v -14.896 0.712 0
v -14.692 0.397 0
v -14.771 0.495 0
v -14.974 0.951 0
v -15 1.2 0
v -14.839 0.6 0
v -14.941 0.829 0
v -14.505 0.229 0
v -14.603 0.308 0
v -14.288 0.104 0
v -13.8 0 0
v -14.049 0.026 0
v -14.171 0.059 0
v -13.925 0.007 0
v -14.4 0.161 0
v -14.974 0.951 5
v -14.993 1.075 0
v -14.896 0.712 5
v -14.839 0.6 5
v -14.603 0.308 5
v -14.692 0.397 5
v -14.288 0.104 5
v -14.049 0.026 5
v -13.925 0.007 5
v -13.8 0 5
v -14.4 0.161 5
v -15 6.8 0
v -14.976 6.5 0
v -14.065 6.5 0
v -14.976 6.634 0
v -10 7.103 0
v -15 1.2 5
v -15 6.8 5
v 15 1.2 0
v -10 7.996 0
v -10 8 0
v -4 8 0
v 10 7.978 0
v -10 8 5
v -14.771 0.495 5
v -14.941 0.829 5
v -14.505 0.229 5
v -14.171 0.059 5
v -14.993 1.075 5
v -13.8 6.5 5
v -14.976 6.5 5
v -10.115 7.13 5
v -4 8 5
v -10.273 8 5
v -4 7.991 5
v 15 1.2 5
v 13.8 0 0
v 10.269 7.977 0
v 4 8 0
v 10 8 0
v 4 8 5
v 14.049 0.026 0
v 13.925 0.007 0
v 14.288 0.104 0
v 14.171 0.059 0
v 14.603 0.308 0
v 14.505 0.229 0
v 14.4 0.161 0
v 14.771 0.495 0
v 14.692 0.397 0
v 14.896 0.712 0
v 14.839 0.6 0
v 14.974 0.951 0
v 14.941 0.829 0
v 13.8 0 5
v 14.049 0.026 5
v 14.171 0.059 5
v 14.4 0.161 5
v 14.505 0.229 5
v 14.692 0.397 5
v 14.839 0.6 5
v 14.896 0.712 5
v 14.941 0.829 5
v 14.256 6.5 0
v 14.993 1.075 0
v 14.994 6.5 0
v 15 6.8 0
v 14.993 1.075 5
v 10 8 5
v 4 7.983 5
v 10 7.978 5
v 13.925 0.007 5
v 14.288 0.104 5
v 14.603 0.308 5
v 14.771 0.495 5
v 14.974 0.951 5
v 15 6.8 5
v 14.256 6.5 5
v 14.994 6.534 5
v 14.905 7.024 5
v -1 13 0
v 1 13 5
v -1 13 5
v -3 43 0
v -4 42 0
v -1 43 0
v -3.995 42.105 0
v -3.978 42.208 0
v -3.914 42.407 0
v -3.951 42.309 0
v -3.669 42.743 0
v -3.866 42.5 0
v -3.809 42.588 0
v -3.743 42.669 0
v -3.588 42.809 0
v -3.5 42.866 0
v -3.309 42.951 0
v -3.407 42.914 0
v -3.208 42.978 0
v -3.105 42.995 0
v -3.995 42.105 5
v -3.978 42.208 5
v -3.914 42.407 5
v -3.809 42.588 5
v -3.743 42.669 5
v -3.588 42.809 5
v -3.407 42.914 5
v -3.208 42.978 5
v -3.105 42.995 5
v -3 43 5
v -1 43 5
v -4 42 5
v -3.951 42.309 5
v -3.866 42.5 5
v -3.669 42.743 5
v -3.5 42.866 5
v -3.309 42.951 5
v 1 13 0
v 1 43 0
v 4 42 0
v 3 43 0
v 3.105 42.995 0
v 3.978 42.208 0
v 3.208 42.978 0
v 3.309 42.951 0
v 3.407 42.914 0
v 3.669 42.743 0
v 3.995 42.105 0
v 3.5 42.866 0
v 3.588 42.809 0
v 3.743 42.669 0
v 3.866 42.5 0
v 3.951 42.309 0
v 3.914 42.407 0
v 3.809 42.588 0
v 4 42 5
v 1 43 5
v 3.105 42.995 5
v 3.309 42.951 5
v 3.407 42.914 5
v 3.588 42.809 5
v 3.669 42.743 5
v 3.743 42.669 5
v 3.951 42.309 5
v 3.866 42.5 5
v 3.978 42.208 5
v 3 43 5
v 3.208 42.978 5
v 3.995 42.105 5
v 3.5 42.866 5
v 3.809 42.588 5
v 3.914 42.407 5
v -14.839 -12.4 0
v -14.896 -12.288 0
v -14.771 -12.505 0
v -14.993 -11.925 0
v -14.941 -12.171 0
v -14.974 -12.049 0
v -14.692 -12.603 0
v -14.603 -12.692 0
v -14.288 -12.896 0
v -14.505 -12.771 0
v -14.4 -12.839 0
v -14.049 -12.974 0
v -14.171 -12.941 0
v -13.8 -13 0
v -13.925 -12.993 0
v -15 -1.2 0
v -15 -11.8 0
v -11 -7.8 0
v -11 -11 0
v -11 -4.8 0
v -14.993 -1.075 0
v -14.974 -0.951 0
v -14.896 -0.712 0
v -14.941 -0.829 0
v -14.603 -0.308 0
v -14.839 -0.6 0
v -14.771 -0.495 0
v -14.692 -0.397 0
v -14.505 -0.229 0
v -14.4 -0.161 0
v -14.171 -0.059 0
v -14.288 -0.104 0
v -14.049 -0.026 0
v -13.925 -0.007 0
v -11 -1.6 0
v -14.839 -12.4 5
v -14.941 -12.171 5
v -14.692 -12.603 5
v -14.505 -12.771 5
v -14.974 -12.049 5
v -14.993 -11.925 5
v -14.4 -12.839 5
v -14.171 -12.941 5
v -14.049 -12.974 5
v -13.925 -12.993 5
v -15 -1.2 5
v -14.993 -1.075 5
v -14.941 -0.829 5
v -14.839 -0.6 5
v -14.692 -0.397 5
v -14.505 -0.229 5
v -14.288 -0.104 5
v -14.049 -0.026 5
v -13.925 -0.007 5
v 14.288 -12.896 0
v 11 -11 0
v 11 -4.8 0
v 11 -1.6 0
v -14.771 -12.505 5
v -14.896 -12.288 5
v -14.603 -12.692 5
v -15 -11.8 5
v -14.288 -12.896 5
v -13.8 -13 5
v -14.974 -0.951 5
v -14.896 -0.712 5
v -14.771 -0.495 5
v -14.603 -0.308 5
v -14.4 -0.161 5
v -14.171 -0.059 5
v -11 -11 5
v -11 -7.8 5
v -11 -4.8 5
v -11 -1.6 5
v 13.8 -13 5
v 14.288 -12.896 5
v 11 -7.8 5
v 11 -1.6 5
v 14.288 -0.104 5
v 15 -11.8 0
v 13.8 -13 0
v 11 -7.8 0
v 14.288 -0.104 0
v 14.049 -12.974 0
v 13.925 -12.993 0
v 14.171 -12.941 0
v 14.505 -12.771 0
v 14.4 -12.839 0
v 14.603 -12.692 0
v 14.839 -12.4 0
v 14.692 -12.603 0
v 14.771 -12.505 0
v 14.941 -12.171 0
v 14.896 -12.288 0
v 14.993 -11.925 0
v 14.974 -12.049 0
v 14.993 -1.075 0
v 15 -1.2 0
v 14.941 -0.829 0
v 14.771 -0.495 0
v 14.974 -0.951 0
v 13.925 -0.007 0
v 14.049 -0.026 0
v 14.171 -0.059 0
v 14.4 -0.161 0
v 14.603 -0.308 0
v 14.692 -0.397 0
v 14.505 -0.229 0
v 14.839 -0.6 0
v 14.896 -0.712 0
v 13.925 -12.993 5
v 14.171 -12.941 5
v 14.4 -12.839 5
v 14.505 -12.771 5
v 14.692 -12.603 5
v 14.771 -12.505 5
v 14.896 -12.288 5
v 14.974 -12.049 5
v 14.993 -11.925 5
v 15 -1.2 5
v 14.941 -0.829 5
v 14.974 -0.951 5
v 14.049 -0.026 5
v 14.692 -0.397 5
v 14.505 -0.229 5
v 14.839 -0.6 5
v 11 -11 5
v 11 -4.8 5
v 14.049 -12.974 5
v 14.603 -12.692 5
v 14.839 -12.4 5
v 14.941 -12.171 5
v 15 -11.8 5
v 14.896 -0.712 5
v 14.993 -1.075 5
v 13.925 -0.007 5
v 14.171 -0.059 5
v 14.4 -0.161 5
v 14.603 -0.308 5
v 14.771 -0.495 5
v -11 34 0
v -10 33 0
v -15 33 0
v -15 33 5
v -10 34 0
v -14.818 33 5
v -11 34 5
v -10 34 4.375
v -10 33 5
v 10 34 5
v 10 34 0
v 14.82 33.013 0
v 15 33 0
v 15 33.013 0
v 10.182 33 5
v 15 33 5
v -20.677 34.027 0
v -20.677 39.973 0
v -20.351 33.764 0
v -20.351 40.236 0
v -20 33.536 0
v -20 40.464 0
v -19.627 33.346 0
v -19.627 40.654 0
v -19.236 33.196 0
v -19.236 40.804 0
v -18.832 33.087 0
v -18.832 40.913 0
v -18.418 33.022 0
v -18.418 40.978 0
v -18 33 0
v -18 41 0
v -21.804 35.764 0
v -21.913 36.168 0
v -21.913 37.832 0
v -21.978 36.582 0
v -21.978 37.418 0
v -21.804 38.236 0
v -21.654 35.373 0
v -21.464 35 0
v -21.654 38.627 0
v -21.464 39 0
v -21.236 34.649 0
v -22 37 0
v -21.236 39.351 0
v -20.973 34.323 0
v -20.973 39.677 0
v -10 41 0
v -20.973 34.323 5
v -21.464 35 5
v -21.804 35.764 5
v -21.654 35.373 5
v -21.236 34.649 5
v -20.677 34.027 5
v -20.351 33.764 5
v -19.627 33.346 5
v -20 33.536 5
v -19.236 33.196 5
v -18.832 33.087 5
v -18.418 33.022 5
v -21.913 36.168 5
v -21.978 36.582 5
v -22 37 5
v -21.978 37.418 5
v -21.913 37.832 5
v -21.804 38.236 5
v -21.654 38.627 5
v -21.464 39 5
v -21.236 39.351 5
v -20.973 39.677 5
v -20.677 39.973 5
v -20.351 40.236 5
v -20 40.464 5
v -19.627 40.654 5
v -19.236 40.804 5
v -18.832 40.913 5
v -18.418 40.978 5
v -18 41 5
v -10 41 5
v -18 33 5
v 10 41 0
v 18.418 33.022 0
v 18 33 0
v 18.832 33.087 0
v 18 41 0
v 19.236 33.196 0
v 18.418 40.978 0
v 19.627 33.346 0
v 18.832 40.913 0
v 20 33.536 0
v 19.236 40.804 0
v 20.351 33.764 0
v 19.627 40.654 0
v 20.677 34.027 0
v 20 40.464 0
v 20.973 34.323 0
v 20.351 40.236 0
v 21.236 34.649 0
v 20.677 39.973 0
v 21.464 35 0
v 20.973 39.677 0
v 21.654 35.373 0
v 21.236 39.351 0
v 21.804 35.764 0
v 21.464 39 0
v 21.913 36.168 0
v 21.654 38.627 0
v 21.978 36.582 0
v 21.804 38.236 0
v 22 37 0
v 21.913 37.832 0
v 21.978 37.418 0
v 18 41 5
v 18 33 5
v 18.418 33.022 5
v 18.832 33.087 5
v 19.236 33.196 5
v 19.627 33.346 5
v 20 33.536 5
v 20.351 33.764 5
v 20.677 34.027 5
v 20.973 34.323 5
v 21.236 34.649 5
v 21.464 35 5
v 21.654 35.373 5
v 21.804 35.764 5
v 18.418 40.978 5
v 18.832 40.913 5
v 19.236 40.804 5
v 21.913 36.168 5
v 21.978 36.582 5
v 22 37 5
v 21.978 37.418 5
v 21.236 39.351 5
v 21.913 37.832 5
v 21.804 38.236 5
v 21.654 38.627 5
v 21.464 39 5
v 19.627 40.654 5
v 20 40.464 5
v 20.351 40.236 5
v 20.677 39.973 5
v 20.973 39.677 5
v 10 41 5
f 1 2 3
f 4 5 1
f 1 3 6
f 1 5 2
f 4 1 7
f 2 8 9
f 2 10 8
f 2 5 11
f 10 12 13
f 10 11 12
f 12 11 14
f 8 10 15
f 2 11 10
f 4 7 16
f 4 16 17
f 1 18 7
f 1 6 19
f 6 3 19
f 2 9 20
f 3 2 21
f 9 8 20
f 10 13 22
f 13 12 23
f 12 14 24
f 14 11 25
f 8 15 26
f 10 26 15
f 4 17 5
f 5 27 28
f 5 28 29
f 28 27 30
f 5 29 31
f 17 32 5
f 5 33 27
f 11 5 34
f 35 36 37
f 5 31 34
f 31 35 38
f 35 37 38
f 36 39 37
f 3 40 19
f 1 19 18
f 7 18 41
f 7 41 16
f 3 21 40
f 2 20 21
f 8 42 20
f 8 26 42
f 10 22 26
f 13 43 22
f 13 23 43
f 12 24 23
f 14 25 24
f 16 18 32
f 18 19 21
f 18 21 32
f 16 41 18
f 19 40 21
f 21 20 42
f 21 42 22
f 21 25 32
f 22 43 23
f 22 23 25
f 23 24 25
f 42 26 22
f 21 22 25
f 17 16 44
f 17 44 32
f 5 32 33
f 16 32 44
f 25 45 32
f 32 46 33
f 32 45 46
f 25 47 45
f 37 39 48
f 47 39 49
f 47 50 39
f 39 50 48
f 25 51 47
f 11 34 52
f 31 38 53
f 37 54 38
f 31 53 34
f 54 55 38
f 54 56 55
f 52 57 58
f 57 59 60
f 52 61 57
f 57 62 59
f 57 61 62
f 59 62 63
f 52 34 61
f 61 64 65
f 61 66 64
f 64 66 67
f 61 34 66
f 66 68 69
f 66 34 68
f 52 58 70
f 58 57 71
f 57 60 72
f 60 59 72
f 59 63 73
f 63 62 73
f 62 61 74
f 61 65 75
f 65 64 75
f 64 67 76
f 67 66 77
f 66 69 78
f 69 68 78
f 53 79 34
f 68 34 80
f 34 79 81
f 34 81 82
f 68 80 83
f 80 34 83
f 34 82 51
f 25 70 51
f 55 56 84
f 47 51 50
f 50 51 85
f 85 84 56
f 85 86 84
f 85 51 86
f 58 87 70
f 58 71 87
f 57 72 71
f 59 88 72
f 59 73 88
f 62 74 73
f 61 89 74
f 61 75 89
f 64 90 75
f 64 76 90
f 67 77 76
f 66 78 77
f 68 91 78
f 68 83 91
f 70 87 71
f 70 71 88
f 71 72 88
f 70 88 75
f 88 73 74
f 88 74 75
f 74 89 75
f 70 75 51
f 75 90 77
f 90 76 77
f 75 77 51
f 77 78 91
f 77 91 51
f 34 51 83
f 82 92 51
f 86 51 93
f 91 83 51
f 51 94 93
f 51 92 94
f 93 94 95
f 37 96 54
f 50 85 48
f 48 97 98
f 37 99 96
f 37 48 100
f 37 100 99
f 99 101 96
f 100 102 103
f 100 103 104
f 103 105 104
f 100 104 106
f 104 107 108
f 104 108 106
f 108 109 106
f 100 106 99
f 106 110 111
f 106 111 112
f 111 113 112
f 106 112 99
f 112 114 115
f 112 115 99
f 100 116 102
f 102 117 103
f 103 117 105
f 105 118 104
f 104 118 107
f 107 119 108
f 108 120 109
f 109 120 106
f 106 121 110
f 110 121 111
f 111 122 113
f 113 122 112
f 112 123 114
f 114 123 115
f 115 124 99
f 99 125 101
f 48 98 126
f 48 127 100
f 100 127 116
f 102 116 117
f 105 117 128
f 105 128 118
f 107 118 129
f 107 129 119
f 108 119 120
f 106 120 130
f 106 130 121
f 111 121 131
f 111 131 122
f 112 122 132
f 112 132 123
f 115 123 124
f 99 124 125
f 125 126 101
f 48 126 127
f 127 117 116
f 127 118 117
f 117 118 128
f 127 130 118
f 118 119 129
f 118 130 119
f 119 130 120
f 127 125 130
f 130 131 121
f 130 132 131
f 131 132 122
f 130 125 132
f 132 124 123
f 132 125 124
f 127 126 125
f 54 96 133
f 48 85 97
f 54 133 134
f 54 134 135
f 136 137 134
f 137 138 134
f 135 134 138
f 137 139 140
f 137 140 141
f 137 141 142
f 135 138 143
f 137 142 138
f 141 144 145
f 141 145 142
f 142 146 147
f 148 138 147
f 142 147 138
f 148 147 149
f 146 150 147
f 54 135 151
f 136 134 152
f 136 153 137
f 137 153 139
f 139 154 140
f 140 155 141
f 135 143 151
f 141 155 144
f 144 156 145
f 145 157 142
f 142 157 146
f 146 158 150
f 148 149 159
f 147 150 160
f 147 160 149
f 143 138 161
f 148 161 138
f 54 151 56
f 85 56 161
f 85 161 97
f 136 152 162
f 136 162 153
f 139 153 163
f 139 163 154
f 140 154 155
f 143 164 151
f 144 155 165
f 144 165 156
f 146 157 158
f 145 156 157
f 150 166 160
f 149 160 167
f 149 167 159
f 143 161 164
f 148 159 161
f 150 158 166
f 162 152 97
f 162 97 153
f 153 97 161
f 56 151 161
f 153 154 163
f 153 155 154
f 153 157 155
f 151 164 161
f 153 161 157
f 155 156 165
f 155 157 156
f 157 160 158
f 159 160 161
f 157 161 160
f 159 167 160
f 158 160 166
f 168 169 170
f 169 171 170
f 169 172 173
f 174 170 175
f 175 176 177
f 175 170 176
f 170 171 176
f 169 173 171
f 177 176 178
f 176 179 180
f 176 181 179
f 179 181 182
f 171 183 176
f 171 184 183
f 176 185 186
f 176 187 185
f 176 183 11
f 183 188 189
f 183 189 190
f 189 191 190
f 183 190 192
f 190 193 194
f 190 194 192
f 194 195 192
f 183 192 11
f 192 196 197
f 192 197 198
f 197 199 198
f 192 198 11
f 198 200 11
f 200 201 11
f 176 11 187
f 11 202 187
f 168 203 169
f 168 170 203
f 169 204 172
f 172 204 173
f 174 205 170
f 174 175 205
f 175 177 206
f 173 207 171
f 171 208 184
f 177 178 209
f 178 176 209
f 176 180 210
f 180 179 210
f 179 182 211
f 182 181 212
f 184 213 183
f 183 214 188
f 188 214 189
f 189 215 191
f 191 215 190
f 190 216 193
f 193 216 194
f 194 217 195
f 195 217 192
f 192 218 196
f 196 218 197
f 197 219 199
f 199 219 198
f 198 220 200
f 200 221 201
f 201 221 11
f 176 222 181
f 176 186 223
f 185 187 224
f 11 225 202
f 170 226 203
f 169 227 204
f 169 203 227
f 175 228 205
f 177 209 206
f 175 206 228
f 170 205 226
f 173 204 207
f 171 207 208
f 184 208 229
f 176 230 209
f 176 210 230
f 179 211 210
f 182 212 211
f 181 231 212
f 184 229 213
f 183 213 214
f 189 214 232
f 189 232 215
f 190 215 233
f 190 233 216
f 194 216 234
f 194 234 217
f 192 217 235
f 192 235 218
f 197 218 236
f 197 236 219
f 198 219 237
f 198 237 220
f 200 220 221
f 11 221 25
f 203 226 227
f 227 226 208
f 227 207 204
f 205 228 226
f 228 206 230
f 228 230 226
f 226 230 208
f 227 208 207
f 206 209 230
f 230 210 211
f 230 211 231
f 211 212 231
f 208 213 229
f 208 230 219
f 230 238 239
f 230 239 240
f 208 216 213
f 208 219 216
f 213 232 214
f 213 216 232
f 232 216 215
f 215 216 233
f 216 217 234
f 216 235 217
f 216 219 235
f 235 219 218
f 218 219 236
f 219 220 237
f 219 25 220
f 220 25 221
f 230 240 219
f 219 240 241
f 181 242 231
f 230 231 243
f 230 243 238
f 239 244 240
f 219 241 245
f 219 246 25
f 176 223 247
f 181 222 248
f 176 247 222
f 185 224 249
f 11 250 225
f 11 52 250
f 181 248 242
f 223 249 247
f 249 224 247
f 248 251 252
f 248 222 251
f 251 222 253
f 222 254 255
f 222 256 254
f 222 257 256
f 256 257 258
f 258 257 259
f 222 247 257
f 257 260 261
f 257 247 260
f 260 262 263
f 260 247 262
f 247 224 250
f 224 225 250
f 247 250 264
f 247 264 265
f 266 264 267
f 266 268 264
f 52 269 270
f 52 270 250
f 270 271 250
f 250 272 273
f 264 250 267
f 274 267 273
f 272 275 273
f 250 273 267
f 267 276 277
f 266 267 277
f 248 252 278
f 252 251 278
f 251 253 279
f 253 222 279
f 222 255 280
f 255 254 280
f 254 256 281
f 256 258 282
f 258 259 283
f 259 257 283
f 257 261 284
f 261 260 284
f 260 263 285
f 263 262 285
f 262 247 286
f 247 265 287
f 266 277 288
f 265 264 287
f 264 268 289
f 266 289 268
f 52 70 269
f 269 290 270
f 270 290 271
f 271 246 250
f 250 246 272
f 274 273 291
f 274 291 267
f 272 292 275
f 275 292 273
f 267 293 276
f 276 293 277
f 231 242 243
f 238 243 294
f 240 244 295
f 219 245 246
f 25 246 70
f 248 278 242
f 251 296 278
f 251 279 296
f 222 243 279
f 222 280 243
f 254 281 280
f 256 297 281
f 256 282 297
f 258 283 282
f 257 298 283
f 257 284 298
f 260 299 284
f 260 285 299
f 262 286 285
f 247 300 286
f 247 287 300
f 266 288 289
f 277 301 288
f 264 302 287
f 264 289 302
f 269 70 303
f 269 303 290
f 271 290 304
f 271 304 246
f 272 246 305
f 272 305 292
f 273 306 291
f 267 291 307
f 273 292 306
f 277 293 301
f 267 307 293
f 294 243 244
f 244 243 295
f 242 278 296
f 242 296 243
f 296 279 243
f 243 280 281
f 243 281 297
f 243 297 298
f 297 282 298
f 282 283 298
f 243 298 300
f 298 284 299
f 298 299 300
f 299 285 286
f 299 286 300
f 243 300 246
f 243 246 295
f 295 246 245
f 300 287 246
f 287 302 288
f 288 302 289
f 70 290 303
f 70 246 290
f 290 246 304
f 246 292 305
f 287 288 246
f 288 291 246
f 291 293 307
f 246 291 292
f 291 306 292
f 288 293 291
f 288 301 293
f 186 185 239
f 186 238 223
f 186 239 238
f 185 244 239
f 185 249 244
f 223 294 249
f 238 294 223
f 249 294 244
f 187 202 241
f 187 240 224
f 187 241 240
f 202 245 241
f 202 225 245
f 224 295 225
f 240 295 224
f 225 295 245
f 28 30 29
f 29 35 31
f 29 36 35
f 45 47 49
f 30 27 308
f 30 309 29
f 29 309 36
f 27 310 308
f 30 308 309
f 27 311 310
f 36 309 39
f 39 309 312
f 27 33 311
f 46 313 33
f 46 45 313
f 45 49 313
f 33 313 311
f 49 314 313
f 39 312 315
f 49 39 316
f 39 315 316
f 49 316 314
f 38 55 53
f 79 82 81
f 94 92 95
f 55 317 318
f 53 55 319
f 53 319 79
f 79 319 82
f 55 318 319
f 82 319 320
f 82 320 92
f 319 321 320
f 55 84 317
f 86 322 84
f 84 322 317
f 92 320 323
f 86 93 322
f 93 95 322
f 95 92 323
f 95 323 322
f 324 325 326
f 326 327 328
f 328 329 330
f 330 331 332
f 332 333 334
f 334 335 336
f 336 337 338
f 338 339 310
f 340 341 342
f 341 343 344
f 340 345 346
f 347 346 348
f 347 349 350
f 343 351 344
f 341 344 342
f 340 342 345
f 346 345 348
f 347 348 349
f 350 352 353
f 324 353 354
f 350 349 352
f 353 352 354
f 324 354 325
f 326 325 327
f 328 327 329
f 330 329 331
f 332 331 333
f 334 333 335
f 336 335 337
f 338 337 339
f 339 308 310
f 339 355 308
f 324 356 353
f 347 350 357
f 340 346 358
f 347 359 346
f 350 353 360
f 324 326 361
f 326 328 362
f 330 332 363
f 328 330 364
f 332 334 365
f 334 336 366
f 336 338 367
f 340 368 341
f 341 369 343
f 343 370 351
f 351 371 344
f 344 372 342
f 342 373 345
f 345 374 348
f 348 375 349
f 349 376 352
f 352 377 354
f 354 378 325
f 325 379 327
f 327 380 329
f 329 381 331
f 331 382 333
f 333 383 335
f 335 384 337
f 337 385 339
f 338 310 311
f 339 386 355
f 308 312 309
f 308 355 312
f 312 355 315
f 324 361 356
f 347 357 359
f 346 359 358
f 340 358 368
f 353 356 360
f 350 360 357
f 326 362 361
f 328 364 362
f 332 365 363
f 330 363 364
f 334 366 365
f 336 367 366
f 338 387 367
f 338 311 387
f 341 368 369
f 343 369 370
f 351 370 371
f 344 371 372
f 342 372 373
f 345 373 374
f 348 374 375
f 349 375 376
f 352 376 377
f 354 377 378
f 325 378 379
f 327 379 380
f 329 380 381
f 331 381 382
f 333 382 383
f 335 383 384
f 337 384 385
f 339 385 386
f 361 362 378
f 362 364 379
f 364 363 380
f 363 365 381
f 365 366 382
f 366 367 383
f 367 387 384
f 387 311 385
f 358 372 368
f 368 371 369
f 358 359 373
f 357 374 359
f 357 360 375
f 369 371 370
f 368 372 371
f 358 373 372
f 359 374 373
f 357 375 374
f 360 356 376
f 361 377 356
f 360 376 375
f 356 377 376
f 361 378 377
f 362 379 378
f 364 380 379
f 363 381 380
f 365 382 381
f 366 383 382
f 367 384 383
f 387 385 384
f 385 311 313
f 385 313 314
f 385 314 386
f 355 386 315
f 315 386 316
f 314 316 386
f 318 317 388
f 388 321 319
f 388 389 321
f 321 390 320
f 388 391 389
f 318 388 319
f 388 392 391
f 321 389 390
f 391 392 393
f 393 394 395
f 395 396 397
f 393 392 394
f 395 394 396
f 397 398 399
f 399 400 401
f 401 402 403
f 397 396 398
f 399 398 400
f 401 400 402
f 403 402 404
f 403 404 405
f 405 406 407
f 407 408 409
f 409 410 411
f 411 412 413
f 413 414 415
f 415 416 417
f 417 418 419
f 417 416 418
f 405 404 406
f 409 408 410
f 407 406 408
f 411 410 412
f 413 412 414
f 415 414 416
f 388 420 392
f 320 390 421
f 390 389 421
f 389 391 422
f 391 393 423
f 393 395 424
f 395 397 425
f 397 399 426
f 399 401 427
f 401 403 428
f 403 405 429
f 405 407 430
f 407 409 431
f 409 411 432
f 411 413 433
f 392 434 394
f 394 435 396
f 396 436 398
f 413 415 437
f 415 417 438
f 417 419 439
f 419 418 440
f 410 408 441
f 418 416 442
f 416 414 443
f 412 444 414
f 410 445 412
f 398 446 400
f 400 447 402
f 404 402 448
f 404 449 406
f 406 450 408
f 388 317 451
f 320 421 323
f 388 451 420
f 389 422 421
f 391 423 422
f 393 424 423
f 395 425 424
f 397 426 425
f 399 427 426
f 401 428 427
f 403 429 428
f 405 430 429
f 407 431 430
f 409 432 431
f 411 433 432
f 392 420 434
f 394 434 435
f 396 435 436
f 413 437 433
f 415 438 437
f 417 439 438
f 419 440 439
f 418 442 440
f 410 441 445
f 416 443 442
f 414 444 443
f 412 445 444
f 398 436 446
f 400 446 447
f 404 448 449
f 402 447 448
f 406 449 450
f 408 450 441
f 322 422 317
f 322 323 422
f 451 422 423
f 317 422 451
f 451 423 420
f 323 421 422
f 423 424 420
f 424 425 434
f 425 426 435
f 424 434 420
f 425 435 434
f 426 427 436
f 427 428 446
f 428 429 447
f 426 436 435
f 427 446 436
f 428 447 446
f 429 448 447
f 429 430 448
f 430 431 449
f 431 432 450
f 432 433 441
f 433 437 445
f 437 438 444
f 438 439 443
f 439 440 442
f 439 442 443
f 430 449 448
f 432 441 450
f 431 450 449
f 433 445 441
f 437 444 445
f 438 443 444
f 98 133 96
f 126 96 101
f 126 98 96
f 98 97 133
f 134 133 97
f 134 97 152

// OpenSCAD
// connector_male.scad
// Male connector with side arms and half-circle locking heads

$fn = 60;


// ------------------------------------------------------------
// Main dimensions
// ------------------------------------------------------------

thickness = 5;

base_width  = 30;
base_depth  = 8;


// ------------------------------------------------------------
// Strap holder base
// ------------------------------------------------------------

strap_base_width = 30;
strap_base_height = 13;
strap_base_depth = 5;

strap_slot_width = 22;
strap_slot_height = 3.2;
strap_bar_height = 3;


// ------------------------------------------------------------
// Side arms
// ------------------------------------------------------------

arm_width = 5;
arm_total_length = 34;


// ------------------------------------------------------------
// Half-circle locking heads
// ------------------------------------------------------------

// Horizontal distance that the locking head goes outward.
head_length = 8;

// Vertical size of the locking head.
// This should match the female side holes.
head_height = 8;

// Straight part of arm before the head starts.
arm_body_length = arm_total_length - head_height;

// Small overlap between arm and head.
head_overlap = 1.0;


// ------------------------------------------------------------
// Center guide
// ------------------------------------------------------------

center_width = 8;
center_length = 35;

slot_width = 2;
slot_margin_bottom = 5;


// ------------------------------------------------------------
// General settings
// ------------------------------------------------------------

arm_overlap_into_base = 1.5;
rounding = 1.2;


// ------------------------------------------------------------
// Helper modules
// ------------------------------------------------------------

module rounded_box(size=[10,10,4], r=1) {
    hull() {
        translate([r, r, 0])
            cylinder(h=size[2], r=r);

        translate([size[0]-r, r, 0])
            cylinder(h=size[2], r=r);

        translate([r, size[1]-r, 0])
            cylinder(h=size[2], r=r);

        translate([size[0]-r, size[1]-r, 0])
            cylinder(h=size[2], r=r);
    }
}


// Left locking head.
// Shape: flat tab going left, then half-circle outside.
module left_half_circle_head_2d(length, height) {
    union() {
        // Flat part
        translate([-length, -height / 2])
            square([length, height]);

        // Rounded outside end
        translate([-length, 0])
            circle(d = height);
    }
}


// Right locking head.
// Shape: flat tab going right, then half-circle outside.
module right_half_circle_head_2d(length, height) {
    union() {
        // Flat part
        translate([0, -height / 2])
            square([length, height]);

        // Rounded outside end
        translate([length, 0])
            circle(d = height);
    }
}


module left_half_circle_head(length, height, thickness) {
    linear_extrude(height = thickness)
        left_half_circle_head_2d(length, height);
}


module right_half_circle_head(length, height, thickness) {
    linear_extrude(height = thickness)
        right_half_circle_head_2d(length, height);
}


// ------------------------------------------------------------
// Male connector
// ------------------------------------------------------------

module male_connector() {

    difference() {

        union() {

            // Bag-style strap holder base
            difference() {
                translate([-strap_base_width / 2, -strap_base_height, 0])
                    rounded_box(
                        [strap_base_width, strap_base_height, strap_base_depth],
                        r = rounding
                    );

                // First strap slot
                translate([
                    -strap_slot_width / 2,
                    -strap_base_height + 2,
                    -0.1
                ])
                    cube([
                        strap_slot_width,
                        strap_slot_height,
                        strap_base_depth + 0.2
                    ]);

                // Second strap slot
                translate([
                    -strap_slot_width / 2,
                    -strap_base_height + 2 + strap_slot_height + strap_bar_height,
                    -0.1
                ])
                    cube([
                        strap_slot_width,
                        strap_slot_height,
                        strap_base_depth + 0.2
                    ]);
            }


            // Front base bridge
            translate([-base_width / 2, 0, 0])
                rounded_box(
                    [base_width, base_depth, thickness],
                    r = rounding
                );


            // Left flexible arm
            translate([
                -base_width / 2,
                base_depth - arm_overlap_into_base,
                0
            ])
                cube([
                    arm_width,
                    arm_body_length + arm_overlap_into_base,
                    thickness
                ]);


            // Right flexible arm
            translate([
                base_width / 2 - arm_width,
                base_depth - arm_overlap_into_base,
                0
            ])
                cube([
                    arm_width,
                    arm_body_length + arm_overlap_into_base,
                    thickness
                ]);


            // Left half-circle locking head
            translate([
                -base_width / 2 + arm_width,
                base_depth + arm_body_length - head_overlap + head_height / 2,
                0
            ])
                left_half_circle_head(
                    head_length,
                    head_height,
                    thickness
                );


            // Right half-circle locking head
            translate([
                base_width / 2 - arm_width,
                base_depth + arm_body_length - head_overlap + head_height / 2,
                0
            ])
                right_half_circle_head(
                    head_length,
                    head_height,
                    thickness
                );


            // Center guide
            translate([
                -center_width / 2,
                base_depth - arm_overlap_into_base,
                0
            ])
                rounded_box(
                    [
                        center_width,
                        center_length + arm_overlap_into_base,
                        thickness
                    ],
                    r = 1
                );
        }


        // Open-top straight slot in center guide
        translate([
            -slot_width / 2,
            base_depth + slot_margin_bottom,
            -0.1
        ])
            cube([
                slot_width,
                center_length + 5,
                thickness + 0.2
            ]);
    }
}


// ------------------------------------------------------------
// Show model
// ------------------------------------------------------------

male_connector();
